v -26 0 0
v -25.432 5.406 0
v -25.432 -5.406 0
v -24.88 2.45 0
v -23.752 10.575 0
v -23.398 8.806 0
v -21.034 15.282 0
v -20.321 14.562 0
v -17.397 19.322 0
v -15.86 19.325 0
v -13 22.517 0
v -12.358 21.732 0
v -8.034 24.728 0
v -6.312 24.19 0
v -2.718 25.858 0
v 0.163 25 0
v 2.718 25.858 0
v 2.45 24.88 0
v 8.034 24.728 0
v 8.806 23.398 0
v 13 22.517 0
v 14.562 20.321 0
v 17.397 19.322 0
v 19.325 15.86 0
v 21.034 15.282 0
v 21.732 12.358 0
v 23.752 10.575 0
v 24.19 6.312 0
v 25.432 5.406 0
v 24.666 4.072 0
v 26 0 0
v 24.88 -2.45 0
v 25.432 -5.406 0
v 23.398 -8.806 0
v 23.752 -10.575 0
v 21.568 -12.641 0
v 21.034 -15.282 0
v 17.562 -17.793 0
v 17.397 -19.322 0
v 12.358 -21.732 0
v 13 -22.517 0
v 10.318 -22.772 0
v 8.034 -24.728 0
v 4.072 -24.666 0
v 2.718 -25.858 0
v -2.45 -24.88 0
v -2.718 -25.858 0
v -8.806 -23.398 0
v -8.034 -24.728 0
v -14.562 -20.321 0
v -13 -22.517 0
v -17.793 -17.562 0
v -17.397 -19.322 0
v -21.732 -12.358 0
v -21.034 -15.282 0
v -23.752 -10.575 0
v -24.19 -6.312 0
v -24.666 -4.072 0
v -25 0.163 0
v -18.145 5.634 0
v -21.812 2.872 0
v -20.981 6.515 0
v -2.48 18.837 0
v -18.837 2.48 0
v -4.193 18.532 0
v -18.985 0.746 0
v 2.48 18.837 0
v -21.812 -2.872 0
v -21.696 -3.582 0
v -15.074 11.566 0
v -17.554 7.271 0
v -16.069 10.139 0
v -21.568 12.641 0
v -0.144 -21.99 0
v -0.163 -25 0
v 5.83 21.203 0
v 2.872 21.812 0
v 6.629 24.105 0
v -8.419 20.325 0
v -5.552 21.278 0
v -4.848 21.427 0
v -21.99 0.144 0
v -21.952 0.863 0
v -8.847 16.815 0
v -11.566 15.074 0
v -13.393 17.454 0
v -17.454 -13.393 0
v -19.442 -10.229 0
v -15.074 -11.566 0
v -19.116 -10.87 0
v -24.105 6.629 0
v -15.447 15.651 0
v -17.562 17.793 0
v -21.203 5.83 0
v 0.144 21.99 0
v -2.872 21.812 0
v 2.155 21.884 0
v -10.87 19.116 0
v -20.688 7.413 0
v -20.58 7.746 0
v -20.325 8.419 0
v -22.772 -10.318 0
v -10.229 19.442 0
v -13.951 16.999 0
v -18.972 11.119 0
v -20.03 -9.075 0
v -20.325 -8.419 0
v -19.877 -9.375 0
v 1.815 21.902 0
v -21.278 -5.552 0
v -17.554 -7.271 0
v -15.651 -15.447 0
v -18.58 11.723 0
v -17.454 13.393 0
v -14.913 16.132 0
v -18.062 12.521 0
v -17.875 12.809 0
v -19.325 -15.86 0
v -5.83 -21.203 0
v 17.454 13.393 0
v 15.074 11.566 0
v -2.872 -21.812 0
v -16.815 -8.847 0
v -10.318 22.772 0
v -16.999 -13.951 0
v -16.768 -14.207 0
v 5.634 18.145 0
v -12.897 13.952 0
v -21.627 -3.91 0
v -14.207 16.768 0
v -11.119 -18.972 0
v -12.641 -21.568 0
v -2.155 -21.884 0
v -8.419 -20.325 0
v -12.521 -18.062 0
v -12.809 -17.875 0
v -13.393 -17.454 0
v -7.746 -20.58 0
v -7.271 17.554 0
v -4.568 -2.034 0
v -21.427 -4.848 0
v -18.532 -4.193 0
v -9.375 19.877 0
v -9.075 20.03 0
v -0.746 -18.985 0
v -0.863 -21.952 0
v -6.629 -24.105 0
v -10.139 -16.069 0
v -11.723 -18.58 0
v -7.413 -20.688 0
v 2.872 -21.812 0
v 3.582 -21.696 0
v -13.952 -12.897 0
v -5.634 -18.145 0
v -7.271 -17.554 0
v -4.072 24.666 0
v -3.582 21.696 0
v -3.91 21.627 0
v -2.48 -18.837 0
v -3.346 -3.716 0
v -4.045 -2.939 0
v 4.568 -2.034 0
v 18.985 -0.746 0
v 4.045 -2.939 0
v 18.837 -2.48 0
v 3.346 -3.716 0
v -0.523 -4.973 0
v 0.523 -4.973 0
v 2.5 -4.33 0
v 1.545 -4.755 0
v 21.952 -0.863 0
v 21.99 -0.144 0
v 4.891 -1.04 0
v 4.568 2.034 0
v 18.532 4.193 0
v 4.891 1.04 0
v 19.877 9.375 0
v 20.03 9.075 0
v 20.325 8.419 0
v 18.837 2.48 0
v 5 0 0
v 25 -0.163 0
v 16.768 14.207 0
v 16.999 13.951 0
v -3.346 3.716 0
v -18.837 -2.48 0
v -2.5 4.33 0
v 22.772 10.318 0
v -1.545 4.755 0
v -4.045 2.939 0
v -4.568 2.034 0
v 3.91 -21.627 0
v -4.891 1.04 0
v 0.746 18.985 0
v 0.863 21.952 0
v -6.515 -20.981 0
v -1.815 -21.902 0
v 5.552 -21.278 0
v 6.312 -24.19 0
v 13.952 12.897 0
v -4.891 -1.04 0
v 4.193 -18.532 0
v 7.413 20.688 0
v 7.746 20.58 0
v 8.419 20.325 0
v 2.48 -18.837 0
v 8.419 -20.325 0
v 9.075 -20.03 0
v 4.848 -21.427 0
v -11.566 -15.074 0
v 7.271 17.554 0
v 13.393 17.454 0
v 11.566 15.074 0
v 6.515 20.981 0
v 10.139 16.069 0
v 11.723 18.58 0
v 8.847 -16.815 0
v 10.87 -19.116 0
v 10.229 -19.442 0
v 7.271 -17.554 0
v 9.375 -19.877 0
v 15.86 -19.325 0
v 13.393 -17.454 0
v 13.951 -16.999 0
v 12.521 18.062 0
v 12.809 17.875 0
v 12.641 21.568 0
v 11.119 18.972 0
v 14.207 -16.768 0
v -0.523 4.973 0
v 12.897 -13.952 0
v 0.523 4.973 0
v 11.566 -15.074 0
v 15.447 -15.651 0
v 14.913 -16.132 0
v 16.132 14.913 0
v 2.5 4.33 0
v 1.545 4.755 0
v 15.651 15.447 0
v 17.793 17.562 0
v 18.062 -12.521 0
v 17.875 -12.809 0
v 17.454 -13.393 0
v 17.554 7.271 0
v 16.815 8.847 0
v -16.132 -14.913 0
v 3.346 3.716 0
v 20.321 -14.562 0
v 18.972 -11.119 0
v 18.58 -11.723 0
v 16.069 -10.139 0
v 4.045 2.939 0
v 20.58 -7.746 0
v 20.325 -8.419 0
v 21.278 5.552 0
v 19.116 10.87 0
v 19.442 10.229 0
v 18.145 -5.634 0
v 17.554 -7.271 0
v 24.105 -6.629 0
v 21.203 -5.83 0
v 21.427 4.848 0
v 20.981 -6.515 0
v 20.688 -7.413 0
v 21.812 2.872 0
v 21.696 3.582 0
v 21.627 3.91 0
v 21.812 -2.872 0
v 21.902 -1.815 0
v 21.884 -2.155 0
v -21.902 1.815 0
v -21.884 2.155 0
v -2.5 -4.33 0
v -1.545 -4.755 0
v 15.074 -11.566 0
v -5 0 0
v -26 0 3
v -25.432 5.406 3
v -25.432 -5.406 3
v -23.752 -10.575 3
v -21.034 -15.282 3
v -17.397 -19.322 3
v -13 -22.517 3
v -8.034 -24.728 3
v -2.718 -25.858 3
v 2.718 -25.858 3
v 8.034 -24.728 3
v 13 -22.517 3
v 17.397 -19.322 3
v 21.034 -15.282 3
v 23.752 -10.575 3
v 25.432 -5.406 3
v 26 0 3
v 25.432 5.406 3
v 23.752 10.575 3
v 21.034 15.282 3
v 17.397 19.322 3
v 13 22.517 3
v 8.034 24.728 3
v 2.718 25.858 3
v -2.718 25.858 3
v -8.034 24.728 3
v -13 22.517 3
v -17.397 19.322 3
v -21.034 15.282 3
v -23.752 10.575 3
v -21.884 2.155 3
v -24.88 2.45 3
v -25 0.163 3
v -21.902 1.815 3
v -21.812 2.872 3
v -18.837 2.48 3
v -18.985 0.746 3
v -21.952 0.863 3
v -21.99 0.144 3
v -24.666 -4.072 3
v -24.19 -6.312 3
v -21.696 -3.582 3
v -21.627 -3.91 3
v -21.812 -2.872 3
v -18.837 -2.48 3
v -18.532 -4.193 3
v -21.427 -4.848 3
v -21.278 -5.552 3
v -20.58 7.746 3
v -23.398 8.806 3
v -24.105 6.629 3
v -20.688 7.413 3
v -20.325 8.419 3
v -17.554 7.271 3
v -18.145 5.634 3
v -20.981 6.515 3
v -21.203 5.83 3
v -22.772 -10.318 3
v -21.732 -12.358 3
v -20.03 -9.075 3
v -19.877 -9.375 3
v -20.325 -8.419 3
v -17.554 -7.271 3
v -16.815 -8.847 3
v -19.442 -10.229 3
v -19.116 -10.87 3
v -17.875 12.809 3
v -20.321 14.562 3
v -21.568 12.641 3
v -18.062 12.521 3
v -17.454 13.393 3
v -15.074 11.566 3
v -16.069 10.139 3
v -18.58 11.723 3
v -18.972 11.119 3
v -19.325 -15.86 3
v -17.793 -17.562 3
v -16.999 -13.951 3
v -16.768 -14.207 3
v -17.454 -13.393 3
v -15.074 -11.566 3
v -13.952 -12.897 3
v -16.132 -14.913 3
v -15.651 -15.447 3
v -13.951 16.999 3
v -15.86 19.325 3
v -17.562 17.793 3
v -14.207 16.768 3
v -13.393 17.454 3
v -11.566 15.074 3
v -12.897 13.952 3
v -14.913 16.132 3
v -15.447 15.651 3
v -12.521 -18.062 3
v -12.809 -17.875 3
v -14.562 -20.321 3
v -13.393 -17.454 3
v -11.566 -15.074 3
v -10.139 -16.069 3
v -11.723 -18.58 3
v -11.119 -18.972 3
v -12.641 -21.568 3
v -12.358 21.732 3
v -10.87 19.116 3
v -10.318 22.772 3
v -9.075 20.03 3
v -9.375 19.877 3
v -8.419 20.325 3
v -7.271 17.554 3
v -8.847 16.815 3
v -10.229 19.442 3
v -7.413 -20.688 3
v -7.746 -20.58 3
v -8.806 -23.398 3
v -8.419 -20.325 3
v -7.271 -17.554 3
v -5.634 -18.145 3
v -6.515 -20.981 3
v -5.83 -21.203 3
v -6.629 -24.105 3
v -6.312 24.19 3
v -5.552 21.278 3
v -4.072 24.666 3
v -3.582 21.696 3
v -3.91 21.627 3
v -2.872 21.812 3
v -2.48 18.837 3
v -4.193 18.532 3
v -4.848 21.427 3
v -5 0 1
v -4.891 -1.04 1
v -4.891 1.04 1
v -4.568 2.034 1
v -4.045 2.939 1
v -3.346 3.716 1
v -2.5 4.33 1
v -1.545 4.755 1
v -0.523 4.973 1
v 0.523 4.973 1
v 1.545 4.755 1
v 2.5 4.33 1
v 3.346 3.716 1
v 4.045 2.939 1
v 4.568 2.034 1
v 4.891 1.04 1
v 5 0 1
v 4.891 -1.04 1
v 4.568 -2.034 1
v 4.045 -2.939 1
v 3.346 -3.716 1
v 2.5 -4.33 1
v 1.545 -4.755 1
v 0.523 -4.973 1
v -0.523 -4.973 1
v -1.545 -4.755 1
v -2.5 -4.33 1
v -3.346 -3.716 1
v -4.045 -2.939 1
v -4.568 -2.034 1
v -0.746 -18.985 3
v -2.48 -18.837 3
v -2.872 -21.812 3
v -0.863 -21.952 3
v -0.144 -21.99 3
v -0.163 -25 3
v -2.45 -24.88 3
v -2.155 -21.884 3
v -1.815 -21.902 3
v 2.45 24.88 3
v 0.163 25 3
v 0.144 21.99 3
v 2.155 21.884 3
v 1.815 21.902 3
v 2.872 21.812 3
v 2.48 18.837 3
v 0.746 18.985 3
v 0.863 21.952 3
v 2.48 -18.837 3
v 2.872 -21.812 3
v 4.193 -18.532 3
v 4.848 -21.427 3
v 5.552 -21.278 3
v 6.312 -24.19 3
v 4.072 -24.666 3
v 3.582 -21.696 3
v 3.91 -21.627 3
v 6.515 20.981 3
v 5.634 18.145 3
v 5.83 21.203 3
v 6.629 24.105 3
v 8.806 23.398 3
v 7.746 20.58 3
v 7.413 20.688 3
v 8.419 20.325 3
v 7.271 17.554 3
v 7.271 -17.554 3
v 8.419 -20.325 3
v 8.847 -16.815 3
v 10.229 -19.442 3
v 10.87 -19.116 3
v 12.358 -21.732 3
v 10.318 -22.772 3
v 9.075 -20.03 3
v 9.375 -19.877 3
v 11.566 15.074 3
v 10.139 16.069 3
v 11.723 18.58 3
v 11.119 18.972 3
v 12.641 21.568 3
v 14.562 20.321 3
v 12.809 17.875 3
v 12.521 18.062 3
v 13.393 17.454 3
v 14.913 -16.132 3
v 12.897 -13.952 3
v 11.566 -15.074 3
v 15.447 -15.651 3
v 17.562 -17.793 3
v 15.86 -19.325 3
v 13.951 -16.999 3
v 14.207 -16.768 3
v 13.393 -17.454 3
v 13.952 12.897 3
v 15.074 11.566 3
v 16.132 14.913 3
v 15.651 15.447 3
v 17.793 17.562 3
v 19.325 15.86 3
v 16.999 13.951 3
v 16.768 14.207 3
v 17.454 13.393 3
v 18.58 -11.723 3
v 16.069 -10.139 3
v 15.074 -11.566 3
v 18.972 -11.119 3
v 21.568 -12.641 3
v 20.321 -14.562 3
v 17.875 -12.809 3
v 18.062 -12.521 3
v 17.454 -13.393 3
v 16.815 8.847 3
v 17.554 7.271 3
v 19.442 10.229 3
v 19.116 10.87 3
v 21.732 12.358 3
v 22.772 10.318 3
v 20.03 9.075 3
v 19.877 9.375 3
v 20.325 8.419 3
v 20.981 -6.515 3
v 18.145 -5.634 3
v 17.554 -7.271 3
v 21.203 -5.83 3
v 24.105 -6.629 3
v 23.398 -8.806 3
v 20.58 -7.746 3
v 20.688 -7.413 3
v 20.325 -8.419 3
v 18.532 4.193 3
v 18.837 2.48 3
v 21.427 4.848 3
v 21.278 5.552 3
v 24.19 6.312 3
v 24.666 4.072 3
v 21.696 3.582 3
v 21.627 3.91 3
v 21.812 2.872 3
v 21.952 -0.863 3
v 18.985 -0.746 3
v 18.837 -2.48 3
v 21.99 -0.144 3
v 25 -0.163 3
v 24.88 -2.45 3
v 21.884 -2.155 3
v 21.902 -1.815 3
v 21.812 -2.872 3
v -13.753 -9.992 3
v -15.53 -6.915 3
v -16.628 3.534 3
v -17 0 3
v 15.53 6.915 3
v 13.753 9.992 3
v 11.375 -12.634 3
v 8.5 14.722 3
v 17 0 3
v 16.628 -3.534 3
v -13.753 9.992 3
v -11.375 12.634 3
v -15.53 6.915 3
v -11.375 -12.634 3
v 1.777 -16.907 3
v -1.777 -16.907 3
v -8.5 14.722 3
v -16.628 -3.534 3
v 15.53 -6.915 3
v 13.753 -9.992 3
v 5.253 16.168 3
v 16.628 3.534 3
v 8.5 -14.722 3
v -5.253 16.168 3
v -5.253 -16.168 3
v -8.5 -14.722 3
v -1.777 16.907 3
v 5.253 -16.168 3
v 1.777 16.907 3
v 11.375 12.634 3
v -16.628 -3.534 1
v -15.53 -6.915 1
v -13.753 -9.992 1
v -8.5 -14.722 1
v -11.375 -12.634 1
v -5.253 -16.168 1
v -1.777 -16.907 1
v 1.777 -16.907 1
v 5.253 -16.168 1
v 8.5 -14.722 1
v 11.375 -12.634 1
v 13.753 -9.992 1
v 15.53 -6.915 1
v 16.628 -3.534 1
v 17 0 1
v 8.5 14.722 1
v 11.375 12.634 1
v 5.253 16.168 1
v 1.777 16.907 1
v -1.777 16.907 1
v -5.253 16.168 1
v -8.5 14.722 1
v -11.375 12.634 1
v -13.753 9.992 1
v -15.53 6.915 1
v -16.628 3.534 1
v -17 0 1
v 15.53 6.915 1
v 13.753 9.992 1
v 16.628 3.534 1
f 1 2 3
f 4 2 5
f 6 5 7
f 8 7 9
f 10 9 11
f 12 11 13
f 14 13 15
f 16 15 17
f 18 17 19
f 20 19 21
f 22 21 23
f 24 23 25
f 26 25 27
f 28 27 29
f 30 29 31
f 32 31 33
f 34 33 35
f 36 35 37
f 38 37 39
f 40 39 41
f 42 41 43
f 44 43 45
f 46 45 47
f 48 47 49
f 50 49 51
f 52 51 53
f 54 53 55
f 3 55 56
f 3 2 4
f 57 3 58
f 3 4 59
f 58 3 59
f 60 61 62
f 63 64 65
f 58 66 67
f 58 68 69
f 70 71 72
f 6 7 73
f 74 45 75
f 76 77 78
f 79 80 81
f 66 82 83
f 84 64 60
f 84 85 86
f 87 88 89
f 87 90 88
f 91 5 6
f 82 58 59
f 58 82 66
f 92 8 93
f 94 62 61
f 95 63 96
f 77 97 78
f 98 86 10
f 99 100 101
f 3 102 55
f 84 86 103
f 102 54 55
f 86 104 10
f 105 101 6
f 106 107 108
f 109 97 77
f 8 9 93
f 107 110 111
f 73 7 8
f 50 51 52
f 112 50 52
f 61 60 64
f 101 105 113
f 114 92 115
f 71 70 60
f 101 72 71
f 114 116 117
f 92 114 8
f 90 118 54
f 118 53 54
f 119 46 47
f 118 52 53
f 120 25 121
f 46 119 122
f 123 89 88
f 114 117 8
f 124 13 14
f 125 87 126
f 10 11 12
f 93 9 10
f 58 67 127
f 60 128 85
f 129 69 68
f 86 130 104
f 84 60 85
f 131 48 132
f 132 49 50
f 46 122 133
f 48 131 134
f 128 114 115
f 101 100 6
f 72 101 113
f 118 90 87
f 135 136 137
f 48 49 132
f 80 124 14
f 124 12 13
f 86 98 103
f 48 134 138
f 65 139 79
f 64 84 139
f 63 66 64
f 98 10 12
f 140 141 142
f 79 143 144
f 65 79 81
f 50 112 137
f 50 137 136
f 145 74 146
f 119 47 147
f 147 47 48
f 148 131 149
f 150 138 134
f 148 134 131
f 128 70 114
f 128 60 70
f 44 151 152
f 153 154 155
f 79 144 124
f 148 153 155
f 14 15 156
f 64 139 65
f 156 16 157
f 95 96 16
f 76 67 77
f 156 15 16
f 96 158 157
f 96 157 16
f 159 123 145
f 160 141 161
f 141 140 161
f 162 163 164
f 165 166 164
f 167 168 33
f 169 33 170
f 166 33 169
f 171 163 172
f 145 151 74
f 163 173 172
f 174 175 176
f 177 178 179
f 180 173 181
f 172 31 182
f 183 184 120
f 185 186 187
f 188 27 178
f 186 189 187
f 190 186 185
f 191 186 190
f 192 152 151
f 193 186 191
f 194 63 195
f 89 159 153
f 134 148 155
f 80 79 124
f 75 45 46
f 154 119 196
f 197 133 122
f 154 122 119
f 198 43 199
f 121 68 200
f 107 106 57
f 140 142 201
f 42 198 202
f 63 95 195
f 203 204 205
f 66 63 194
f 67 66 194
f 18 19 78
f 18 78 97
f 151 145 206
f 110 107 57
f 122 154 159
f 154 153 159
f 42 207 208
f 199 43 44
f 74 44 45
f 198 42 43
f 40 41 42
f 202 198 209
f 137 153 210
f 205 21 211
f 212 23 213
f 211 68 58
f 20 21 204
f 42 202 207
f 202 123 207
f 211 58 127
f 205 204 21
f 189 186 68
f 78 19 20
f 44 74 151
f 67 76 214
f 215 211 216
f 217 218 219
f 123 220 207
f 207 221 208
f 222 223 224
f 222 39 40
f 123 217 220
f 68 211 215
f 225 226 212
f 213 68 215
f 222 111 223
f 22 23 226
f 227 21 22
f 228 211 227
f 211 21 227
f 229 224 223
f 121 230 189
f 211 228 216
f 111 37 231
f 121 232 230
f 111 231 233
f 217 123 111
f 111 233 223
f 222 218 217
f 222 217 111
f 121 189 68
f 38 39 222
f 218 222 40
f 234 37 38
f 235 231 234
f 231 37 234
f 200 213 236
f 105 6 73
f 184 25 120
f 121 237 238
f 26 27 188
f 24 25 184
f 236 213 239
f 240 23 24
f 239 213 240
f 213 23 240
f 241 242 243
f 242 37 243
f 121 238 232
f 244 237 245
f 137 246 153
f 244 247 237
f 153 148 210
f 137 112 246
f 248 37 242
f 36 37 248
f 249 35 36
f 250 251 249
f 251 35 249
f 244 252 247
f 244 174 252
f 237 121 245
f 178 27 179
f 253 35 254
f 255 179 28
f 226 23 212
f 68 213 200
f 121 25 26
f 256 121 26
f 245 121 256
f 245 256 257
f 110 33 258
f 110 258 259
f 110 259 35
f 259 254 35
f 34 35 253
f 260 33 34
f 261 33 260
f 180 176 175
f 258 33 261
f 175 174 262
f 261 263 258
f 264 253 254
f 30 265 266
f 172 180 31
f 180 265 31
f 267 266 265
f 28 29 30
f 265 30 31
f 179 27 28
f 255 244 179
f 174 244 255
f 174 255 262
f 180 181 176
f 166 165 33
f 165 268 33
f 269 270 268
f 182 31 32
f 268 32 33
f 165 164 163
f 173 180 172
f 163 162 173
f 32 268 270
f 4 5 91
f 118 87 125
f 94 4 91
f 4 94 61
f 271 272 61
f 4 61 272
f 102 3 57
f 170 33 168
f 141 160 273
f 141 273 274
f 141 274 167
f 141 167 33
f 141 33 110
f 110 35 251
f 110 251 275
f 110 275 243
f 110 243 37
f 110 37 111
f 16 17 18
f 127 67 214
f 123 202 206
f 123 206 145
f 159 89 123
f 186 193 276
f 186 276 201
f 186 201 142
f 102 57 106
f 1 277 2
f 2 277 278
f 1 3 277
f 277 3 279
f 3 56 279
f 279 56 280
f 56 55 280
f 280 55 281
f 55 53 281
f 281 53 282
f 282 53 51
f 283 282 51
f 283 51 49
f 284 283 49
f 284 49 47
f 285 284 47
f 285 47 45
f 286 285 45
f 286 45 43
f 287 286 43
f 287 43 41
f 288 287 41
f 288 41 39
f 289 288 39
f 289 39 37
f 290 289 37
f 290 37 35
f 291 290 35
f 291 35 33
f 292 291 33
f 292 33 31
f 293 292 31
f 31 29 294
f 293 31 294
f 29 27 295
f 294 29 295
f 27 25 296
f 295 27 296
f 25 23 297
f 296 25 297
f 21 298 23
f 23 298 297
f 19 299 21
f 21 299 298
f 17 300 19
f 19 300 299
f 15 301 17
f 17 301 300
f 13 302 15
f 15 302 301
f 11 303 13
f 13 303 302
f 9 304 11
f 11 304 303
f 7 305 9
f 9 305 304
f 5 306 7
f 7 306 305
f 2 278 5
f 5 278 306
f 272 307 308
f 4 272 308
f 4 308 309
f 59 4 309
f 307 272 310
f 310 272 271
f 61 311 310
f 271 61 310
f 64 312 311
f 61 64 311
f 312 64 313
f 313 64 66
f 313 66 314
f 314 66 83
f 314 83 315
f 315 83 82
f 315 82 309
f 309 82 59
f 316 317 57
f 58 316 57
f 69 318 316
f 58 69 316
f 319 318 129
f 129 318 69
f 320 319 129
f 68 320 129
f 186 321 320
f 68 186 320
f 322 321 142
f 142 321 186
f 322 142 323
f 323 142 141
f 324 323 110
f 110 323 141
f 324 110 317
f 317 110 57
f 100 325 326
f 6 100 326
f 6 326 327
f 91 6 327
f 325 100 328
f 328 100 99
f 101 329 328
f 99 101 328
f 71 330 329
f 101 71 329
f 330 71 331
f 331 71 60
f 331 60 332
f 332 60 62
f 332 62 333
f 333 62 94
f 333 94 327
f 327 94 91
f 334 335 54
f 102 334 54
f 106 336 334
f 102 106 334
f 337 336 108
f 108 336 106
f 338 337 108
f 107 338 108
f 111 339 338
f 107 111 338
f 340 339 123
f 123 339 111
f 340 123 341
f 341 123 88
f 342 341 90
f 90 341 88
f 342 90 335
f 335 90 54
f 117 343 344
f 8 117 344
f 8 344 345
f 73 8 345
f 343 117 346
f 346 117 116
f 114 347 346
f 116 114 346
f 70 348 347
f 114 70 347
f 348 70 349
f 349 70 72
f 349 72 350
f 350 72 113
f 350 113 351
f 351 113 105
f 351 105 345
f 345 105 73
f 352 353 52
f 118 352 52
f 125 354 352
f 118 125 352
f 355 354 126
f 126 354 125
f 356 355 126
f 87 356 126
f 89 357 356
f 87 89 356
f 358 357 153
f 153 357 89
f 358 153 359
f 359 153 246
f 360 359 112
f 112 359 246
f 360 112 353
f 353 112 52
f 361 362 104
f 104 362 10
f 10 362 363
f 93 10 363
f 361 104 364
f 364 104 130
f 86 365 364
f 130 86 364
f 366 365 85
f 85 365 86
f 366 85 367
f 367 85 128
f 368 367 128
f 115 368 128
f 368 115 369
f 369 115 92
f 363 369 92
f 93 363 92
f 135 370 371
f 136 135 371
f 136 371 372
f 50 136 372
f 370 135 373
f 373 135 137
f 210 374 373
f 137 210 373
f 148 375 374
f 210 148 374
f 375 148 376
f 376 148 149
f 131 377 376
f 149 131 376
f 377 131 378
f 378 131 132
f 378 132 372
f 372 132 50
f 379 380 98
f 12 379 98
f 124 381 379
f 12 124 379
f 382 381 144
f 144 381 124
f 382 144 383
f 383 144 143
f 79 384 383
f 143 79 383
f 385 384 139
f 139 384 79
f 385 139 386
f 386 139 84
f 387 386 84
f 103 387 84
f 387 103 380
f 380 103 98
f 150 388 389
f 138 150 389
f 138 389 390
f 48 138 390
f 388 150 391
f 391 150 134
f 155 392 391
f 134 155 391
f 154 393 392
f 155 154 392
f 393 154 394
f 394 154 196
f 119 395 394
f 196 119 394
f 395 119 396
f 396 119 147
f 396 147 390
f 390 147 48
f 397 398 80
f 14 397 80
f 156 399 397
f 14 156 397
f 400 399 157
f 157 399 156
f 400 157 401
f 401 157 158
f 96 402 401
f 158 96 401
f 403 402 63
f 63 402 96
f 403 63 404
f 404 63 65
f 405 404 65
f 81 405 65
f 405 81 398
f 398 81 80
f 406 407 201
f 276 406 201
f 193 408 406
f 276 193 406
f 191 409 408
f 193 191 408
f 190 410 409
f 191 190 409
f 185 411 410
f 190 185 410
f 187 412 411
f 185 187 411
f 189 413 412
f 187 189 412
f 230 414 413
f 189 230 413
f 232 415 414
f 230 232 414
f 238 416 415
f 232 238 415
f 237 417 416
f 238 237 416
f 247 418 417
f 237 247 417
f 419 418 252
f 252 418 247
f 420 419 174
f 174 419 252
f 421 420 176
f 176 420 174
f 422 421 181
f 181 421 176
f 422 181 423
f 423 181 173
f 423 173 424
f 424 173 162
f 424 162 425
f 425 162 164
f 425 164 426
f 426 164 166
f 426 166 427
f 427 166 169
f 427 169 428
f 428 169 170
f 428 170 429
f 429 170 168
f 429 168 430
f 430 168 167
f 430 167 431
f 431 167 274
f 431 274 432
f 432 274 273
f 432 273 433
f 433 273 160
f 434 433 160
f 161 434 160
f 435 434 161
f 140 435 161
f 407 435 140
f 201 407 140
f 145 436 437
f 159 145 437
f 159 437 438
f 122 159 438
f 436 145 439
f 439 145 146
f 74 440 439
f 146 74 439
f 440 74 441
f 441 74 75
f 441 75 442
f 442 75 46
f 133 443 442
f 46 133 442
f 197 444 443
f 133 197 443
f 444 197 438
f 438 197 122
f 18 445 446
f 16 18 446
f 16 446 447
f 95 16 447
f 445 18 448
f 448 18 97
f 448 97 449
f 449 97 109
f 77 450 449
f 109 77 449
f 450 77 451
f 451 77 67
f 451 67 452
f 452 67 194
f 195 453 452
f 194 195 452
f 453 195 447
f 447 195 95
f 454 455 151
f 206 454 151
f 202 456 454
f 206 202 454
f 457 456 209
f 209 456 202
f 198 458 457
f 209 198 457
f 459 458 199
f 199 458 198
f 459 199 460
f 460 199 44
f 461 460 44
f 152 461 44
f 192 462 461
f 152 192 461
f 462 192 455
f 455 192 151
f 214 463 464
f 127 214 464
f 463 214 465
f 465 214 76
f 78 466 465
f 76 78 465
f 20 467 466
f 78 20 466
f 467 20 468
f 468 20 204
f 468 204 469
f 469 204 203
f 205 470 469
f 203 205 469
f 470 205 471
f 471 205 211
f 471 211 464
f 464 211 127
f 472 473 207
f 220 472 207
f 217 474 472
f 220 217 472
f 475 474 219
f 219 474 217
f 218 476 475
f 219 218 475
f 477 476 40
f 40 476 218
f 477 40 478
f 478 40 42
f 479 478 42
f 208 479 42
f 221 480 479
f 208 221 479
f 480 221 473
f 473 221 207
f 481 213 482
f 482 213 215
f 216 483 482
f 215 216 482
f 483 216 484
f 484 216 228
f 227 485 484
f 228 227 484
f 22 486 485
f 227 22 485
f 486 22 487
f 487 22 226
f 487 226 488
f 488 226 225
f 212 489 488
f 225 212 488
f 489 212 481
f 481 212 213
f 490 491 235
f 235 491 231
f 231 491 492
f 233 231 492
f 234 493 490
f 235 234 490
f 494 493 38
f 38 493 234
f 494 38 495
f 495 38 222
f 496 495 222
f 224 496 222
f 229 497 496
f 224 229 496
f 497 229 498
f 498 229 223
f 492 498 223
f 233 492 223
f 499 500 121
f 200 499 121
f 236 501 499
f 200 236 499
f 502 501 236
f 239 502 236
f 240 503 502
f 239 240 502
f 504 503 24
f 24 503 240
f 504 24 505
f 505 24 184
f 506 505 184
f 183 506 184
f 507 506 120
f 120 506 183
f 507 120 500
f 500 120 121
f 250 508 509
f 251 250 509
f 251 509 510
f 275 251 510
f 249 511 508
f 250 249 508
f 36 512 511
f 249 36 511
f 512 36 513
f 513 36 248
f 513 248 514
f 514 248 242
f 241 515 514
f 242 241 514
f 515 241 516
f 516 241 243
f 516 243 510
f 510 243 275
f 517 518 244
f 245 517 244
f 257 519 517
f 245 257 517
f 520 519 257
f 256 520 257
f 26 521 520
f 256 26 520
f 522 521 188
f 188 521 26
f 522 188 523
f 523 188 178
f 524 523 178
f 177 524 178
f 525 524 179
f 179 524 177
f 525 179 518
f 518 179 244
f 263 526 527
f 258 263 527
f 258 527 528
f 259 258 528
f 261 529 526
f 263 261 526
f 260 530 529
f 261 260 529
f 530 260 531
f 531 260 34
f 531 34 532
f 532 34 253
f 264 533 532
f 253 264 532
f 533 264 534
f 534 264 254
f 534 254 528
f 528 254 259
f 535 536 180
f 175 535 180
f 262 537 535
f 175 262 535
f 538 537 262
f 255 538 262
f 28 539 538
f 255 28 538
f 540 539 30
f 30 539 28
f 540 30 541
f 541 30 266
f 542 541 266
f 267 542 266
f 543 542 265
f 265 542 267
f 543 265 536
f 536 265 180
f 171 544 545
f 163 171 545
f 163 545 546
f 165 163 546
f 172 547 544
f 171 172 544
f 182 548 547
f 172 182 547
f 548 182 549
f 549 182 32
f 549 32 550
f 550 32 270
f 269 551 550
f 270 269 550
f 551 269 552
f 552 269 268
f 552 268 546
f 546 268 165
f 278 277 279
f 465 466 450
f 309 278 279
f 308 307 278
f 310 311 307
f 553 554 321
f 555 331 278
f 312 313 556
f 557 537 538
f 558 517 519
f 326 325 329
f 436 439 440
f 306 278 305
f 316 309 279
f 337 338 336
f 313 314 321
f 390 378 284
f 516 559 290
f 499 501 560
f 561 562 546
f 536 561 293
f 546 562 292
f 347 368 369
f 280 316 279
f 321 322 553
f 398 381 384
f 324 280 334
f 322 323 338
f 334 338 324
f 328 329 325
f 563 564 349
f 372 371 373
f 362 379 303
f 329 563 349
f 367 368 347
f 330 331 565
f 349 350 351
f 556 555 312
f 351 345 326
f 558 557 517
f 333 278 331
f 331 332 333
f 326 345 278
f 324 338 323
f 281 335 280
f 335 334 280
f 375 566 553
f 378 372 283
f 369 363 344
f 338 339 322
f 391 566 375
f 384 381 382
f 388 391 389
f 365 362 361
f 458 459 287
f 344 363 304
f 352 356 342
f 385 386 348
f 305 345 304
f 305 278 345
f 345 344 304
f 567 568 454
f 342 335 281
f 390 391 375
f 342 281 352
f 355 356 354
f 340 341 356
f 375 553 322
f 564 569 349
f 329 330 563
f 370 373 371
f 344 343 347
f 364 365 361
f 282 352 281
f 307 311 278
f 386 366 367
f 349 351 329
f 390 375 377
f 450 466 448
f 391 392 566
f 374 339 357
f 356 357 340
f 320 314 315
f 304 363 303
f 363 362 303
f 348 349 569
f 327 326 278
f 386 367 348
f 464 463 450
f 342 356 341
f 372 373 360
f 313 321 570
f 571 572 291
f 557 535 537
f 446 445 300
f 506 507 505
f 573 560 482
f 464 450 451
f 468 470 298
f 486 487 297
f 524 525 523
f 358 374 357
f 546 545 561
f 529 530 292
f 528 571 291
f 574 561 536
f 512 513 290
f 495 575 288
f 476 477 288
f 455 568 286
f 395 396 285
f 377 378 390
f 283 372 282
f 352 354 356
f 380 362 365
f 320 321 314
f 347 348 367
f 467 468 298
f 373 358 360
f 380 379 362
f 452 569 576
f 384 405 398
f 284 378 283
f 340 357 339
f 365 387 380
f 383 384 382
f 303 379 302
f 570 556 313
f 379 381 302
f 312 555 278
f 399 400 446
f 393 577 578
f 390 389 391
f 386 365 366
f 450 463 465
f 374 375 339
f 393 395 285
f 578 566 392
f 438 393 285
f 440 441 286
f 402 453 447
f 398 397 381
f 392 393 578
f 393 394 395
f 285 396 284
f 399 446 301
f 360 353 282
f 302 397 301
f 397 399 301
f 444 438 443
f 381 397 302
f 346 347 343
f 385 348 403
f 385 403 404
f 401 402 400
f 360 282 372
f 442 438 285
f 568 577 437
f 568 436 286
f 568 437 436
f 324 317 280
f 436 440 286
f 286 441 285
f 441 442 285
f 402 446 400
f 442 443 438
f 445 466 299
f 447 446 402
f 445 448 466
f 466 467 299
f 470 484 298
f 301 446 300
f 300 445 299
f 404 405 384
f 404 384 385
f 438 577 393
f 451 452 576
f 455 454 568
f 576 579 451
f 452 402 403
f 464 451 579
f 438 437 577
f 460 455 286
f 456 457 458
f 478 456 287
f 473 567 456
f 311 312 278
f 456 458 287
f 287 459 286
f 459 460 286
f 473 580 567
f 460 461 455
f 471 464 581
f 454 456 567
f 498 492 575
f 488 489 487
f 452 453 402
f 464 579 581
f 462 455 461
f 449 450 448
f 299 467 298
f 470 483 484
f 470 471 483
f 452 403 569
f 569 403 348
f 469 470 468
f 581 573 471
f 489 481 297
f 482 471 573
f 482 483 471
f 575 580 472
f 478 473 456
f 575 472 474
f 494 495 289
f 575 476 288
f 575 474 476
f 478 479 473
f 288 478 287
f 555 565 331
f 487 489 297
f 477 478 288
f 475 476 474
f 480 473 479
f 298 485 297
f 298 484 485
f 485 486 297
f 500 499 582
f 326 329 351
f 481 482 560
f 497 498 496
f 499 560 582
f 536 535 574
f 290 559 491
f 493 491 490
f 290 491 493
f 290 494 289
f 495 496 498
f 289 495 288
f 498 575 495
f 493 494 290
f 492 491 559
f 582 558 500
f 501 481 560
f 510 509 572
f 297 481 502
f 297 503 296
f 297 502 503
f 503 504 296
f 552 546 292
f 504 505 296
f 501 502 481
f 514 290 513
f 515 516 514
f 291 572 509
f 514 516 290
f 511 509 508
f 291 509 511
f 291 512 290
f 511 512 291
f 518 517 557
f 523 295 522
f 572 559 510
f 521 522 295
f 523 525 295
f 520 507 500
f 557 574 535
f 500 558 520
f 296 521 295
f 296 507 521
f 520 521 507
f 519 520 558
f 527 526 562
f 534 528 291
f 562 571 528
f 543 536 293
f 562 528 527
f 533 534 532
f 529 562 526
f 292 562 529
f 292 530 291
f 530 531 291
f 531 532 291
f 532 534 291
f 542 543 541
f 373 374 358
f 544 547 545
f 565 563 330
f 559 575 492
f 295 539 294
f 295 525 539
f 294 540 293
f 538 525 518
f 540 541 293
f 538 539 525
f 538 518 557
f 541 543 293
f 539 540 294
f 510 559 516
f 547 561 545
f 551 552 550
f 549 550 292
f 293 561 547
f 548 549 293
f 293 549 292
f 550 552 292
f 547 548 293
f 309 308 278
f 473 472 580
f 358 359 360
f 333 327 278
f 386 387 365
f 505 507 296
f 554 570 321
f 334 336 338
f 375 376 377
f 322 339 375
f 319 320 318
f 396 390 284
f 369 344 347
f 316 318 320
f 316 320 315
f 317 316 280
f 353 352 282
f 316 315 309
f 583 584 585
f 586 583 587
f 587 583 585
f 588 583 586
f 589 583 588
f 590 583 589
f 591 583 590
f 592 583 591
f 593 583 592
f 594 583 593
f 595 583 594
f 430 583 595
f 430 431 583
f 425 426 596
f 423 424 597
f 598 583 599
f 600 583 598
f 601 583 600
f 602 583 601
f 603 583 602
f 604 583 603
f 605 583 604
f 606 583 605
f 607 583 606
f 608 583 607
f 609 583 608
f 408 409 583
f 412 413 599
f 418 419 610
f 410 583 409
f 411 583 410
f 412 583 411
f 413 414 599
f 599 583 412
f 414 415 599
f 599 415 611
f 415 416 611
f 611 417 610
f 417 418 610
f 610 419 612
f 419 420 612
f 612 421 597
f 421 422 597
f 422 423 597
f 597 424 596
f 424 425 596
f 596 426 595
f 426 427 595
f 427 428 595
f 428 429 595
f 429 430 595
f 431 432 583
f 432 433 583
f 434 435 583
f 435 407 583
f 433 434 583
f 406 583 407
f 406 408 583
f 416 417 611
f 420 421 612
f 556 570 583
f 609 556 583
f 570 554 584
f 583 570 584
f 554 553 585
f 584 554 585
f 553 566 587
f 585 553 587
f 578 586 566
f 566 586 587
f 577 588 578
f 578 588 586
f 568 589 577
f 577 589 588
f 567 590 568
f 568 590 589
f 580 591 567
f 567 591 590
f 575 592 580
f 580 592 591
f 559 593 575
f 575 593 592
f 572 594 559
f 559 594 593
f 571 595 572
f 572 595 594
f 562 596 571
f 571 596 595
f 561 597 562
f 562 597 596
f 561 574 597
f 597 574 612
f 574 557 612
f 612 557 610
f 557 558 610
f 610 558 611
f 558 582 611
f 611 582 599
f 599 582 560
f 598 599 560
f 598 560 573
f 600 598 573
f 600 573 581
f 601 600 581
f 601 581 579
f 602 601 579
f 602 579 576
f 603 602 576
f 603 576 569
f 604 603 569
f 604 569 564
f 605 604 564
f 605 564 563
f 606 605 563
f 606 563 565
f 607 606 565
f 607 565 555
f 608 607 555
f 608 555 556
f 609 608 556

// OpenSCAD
/* for knitting machinve v2
next time, make it taller (2mm thickness) */

NUM_SECTIONS = 48; 	/* number of interrupters*2 */
INT_MODIFIER = -0.3;  /* interrupter-width modifier
								range:[-1..1] 
								=0 => 	interrupter = hole 
								<0 =>	interrupter > hole
								>0 => interrupter < hole
							*/

R_OUTER = 26;			/* outer radius of the encoder */
BORDER = 1;				/* a filled border  */
R_INNER2 = 22;			/* inner radius -> inner radius 2, phase shifted interrupters for direction detection */
R_INNER = 19;			/* inner radius -> filled */


R_MOUNT = 17;			/* mounting hole outline radius */
R_HOLE = 5;				/* mounting hole radius */
R_CROSS = 1.9;			/* center-cross for 2d encoders*/


THICKNESS = 3;	   		/* thickness of the encoder */
THICKNESS_MOUNT = 2;  /* thickness of the mouting hole outline */


$fs = 0.01;

/* generates encoder contour */
module encoder_contour(n,rin,rout,mod){
	 for (i = [1:2:n])
    {
        assign (a1 = i*360/n, a2 = (i+1+mod)*360/n )
        {	
                polygon(points=[
						[cos(a2)*rin,sin(a2)*rin],
						[cos(a1)*rin,sin(a1)*rin],
						[cos(a1)*rout,sin(a1)*rout],
						[cos(a2)*rout,sin(a2)*rout] 
					]);
			}
    }	
}

/* use this to create a hole outline */
module hole2d(rhole,rcross){
	 circle(r = rhole);
	 polygon(points=[[0,0.1],[rcross,0],[0,-0.1],[-rcross,0] ] );
	 polygon(points=[[0.1,0],[0,rcross],[-0.1,0],[0,-rcross] ] );
}

module encoder3d(n,rin,rin2,rout,rhole,rmount,border,mod,t,tm) {
	echo();
	difference(){
		union(){
			cylinder(h=t,r=rout);
			cylinder(h=tm,r=rmount);			
		}
		translate([0,0,t-tm]){cylinder(h=tm,r=rmount);}
		linear_extrude(height=5*t,center=true) encoder_contour(n,rin,rin2,mod);
		rotate([0,0,360/(4*n)]) linear_extrude(height=5*t,center=true) encoder_contour(n,rin2-$fs,rout-border,mod);
		cylinder(h=5*t,r=rhole,center=true);
	}
}

module encoder2d(rin,rout,rhole,rcross,mod) {
	hole2d(rhole,rcross);
	encoder_contour(rin,rout,mod);
}


encoder3d(NUM_SECTIONS,R_INNER,R_INNER2,R_OUTER,R_HOLE,R_MOUNT,BORDER,INT_MODIFIER,THICKNESS,THICKNESS_MOUNT);
//encoder2d(NUM_SECTIONS,R_INNER,R_OUTER,R_HOLE,R_CROSS,INT_MODIFIER);
